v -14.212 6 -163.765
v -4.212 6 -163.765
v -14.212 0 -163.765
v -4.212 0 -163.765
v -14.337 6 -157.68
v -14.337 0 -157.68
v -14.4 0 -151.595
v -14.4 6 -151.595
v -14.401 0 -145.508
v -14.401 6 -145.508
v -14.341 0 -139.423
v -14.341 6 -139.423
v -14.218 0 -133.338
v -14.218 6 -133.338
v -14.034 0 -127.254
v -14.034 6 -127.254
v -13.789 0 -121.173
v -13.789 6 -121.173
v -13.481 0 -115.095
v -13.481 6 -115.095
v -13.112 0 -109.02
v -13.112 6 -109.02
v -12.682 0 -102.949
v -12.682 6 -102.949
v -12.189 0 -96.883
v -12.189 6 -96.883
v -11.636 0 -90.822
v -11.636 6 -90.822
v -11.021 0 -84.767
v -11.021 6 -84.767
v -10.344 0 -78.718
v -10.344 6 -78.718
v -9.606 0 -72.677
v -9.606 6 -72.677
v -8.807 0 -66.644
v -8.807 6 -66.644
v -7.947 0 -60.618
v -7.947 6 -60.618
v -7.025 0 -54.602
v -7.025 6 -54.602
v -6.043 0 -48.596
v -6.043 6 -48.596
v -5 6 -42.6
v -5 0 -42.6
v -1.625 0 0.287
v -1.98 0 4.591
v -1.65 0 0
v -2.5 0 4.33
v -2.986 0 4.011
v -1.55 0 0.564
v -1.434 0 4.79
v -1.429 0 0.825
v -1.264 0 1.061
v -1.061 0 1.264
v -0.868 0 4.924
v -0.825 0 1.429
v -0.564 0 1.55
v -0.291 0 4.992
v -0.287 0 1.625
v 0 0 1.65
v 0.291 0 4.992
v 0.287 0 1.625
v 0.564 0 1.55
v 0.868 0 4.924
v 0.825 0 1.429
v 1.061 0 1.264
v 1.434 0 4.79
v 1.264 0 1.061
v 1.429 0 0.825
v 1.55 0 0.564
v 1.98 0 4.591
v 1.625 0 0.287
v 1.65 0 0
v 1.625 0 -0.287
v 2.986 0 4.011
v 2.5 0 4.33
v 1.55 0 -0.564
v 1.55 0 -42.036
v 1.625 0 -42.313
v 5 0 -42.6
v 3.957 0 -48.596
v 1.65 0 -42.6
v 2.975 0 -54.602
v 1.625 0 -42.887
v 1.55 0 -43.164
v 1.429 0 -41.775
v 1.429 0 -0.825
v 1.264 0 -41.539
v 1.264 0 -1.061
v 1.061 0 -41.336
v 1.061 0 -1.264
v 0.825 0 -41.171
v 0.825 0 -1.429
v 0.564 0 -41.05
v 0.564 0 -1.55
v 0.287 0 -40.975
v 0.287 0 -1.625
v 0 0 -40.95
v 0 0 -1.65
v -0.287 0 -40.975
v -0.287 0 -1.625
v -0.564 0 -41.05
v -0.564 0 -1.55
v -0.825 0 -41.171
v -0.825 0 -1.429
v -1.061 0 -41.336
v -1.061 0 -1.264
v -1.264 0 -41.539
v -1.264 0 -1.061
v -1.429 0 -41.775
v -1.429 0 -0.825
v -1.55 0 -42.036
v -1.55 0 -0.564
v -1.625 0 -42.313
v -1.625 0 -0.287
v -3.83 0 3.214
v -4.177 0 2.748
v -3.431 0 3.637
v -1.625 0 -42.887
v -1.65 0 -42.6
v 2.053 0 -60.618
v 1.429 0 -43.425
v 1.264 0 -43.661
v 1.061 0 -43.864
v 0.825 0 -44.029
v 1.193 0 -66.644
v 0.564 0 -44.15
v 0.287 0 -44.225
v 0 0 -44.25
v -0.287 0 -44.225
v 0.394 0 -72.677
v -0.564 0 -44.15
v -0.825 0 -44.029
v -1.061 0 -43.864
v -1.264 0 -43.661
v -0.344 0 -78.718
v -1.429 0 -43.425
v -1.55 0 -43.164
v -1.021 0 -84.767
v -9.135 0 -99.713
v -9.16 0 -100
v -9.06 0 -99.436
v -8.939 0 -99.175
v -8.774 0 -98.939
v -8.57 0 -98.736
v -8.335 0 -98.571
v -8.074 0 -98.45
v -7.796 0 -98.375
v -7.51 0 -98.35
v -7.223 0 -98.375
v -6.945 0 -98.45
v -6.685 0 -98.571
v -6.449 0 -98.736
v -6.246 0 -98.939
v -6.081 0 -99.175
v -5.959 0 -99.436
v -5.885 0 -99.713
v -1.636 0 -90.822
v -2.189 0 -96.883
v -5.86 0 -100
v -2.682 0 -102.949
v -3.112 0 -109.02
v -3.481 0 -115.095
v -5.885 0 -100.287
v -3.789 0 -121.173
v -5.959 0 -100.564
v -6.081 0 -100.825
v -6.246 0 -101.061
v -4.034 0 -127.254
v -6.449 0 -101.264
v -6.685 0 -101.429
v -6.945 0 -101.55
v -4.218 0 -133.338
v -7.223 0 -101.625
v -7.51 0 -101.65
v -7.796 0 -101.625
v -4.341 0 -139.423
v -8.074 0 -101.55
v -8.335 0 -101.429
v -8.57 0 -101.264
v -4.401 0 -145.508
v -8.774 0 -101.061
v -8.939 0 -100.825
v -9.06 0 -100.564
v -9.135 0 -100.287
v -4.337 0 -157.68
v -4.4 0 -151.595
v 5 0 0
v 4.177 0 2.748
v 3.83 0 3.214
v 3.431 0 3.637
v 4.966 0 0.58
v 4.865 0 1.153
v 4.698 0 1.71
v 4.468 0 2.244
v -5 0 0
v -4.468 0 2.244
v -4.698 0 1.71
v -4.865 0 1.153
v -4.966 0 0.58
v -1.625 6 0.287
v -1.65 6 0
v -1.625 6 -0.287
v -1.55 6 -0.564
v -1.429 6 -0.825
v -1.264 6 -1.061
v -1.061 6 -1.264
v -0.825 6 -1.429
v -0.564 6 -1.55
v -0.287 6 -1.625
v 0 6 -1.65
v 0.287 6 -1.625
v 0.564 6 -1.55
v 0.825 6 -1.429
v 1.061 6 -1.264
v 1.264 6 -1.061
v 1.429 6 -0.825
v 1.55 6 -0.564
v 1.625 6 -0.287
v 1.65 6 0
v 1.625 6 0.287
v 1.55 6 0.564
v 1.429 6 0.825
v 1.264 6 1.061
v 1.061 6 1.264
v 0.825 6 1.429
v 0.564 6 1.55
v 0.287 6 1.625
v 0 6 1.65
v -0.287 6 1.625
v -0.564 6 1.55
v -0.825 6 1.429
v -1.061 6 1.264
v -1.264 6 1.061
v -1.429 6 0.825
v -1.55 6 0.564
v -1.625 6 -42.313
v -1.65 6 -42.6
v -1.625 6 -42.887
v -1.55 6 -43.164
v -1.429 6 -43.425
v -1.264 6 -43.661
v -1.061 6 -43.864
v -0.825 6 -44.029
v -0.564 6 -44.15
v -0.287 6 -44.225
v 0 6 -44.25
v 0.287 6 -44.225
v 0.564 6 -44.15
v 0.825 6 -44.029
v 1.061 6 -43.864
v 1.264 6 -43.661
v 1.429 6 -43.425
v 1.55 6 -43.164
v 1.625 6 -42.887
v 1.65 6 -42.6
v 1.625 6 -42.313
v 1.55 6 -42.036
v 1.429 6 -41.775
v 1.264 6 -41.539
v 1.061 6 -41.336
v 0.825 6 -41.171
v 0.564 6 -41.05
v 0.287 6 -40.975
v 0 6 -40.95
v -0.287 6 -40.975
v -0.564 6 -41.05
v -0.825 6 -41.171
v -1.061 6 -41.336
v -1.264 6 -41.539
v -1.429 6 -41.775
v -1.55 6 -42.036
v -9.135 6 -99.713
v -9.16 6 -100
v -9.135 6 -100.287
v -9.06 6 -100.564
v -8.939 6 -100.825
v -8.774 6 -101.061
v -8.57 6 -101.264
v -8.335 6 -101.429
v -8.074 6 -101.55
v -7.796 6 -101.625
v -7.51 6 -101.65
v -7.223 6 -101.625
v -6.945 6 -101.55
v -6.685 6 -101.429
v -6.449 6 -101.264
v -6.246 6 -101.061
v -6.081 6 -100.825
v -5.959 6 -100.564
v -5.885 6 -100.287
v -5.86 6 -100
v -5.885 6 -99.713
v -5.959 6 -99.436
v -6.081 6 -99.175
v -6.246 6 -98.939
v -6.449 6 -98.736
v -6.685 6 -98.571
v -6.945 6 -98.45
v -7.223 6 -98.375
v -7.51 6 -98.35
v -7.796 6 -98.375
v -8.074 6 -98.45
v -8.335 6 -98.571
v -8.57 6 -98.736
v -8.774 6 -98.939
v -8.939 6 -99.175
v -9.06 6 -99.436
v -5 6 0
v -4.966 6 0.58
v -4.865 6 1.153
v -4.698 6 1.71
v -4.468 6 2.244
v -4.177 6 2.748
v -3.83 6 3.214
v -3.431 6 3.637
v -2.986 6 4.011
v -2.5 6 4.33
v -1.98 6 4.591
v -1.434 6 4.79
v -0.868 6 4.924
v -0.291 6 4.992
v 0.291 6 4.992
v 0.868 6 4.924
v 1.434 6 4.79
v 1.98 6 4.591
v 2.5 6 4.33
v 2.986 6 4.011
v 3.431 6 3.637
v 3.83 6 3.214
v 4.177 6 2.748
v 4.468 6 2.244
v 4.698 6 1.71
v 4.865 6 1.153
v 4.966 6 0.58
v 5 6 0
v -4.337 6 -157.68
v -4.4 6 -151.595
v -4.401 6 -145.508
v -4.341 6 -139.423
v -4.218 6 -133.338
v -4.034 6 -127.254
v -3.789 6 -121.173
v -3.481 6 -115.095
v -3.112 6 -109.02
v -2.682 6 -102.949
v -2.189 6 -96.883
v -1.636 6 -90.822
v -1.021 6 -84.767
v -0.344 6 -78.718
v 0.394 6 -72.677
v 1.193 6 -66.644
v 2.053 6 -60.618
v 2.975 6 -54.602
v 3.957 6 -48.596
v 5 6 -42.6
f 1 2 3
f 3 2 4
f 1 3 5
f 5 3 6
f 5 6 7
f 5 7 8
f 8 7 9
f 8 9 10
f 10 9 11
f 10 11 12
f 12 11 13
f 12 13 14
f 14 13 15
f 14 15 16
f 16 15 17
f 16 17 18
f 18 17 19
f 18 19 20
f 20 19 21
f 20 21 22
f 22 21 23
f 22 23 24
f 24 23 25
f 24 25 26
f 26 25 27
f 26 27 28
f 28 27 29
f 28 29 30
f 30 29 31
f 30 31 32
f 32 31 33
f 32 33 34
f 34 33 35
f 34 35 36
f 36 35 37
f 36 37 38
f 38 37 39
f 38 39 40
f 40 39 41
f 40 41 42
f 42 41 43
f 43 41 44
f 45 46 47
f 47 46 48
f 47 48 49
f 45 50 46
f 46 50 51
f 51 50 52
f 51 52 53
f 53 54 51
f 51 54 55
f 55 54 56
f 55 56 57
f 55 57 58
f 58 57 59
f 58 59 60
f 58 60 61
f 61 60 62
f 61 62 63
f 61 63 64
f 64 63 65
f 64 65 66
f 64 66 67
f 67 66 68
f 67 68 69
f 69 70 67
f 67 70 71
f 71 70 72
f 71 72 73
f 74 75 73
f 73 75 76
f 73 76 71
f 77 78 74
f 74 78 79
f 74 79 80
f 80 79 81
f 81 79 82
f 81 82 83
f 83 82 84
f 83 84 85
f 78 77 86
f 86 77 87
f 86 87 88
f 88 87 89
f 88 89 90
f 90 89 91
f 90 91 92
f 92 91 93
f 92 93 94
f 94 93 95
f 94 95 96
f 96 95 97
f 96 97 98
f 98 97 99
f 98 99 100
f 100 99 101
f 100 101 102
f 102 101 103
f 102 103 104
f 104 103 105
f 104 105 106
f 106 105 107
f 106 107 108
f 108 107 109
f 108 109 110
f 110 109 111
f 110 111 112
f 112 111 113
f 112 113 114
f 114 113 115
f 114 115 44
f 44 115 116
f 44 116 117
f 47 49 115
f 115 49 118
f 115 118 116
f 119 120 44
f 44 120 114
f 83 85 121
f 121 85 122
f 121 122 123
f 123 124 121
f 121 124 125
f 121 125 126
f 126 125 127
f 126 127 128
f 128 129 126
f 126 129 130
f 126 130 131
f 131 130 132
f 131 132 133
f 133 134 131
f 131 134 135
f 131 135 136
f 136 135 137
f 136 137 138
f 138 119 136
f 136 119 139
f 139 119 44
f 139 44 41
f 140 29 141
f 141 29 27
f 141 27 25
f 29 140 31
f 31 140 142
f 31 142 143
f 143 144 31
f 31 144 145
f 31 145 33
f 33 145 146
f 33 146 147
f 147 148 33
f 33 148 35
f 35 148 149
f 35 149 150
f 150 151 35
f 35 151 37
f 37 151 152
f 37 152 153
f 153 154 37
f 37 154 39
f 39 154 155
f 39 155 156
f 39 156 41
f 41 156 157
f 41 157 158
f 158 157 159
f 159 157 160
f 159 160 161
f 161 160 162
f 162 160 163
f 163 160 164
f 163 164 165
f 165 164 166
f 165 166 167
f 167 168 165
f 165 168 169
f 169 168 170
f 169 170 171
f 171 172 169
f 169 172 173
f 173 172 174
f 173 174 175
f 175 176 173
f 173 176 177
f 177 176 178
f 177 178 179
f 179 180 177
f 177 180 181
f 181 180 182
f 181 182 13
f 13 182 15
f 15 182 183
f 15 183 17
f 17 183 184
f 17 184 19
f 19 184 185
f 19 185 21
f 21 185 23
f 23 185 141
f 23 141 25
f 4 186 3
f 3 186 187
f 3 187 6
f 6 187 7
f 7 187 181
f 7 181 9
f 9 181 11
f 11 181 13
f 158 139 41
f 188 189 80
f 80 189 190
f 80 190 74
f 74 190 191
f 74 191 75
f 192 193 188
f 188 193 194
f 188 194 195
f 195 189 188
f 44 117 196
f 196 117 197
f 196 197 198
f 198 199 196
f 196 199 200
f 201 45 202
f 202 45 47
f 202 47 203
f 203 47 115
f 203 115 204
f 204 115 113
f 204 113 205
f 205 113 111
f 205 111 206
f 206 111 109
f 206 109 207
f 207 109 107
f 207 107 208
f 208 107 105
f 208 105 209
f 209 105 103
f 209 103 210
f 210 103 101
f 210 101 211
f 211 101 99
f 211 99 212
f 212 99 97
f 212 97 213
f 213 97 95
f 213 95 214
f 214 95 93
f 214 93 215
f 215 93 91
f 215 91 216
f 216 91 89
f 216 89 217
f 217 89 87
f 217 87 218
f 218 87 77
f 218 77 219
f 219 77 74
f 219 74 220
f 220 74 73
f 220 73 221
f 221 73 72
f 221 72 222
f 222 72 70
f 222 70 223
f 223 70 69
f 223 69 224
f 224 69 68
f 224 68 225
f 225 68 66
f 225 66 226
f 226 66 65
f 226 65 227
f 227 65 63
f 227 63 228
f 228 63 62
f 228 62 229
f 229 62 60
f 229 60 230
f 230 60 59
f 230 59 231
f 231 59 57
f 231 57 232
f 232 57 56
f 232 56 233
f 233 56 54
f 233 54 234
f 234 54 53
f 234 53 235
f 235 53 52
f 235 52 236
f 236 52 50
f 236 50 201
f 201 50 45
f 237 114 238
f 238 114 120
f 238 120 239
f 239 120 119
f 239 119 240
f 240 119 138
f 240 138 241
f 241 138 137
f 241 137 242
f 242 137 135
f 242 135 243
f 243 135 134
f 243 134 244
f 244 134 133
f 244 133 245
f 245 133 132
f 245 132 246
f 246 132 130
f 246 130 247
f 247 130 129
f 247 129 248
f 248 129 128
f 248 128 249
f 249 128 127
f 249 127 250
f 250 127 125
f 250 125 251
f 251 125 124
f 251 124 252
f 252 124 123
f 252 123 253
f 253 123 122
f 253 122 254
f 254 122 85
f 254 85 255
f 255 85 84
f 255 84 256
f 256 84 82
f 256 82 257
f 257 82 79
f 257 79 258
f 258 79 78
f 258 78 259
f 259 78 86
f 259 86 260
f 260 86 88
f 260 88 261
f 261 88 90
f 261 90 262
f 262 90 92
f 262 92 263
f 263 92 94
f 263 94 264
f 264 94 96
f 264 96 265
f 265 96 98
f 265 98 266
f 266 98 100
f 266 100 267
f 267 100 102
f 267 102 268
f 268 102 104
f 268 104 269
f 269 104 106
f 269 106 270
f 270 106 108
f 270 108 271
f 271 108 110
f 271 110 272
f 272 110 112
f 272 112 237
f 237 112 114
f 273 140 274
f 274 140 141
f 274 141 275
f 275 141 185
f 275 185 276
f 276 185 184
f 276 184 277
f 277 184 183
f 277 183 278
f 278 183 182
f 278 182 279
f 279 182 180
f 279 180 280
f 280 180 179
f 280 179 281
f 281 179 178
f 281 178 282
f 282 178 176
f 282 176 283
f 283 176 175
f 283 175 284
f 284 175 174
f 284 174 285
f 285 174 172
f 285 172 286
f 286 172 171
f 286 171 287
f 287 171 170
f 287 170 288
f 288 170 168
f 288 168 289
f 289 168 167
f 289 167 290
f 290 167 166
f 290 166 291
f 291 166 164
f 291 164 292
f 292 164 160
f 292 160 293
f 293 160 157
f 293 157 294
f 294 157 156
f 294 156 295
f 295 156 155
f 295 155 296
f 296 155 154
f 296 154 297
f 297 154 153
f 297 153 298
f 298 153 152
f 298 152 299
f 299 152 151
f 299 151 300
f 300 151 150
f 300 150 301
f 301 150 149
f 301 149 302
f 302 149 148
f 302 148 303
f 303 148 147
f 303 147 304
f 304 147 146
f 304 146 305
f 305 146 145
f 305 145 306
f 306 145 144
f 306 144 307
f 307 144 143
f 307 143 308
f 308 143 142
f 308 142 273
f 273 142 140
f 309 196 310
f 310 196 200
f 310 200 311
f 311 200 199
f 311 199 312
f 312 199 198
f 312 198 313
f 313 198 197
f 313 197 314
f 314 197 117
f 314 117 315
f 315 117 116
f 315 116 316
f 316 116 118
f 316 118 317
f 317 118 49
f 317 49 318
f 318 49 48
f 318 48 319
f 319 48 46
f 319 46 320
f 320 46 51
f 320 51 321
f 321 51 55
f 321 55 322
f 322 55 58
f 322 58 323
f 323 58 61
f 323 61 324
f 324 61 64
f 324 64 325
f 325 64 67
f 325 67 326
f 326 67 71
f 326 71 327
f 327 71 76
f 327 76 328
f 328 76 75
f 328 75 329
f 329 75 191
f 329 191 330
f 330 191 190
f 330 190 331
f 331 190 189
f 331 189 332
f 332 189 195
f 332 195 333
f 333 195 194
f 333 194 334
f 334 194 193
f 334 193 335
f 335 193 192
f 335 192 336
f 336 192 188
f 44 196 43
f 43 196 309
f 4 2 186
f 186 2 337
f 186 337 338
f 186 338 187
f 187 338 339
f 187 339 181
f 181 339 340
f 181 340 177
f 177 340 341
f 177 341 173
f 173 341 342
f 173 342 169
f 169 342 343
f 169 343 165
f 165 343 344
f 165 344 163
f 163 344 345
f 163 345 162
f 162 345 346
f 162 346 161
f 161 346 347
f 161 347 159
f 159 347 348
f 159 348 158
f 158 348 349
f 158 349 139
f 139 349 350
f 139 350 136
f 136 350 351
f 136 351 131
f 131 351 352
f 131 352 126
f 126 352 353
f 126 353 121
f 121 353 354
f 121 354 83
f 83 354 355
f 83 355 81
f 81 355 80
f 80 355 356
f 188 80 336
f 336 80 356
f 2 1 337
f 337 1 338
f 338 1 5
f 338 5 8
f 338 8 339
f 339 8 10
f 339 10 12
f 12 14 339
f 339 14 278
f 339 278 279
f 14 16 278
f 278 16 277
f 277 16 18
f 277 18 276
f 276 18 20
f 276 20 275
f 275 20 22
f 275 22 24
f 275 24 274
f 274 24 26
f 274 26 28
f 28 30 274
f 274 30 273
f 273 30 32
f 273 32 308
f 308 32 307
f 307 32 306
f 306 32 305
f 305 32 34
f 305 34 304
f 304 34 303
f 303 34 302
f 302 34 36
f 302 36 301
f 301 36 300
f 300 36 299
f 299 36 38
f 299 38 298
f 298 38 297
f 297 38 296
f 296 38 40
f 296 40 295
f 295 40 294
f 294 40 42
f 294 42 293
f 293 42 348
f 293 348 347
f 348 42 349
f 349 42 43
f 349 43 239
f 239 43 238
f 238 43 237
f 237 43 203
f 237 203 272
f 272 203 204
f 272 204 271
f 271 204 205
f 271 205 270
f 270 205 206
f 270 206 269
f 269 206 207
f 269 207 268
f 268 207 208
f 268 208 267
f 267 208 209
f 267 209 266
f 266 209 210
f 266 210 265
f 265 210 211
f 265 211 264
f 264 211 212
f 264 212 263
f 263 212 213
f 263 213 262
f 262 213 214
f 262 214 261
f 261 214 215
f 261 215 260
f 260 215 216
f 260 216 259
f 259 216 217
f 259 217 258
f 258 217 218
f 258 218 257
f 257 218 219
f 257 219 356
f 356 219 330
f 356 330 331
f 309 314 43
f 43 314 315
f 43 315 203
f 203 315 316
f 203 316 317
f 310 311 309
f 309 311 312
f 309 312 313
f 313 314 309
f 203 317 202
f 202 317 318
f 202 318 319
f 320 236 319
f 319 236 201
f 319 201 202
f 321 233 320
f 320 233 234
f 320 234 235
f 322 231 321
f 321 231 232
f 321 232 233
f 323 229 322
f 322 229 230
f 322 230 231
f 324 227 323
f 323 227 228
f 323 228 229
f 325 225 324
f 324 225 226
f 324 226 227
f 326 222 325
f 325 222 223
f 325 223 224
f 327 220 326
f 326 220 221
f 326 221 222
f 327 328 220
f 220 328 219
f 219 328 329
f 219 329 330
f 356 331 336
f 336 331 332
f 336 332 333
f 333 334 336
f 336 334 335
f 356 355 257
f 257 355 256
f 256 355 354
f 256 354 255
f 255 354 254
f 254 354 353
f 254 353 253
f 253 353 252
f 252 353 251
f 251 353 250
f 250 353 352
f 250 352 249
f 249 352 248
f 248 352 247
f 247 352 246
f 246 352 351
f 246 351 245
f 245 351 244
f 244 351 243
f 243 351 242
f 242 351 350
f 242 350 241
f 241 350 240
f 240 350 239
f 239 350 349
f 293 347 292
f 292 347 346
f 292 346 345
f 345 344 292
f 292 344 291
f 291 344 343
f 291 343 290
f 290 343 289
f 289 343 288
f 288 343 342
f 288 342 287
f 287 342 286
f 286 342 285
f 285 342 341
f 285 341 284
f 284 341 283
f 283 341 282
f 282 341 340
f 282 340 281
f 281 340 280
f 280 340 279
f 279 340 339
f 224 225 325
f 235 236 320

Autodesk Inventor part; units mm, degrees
ref_plane "YZ Plane" through (0, 0, 0) normal (1, 0, 0) x (0, 1, 0)
ref_plane "XZ Plane" through (0, 0, 0) normal (0, 1, 0) x (-1, 0, 0)
ref_plane "XY Plane" through (0, 0, 0) normal (0, 0, 1) x (1, 0, 0)
sketch "Sketch1" plane through (0, 0, 0) normal (0, 1, 0) x (-1, 0, 0)
  line L0 (0, 0) -> (0, -312.648) construction
  line L1 (5, 0) -> (5, -312.648)
  line L2 (-5, -312.648) -> (-5, 0)
  arc A0 (5, 0) -> (-5, 0) centre (0, 0) ccw
  arc A1 (-5, -312.648) -> (5, -312.648) centre (0, -312.648) ccw
  circle A2 centre (0, 0) radius 1.65
  circle A3 centre (0, -312.648) radius 1.65
  circle A4 centre (0, -42.6) radius 1.65
  circle A5 centre (0, -254.274) radius 1.65
  arc A6 (5, -254.274) -> (5, -42.6) centre (-585.5917, -148.437) ccw
  arc A7 (-5, -254.274) -> (-5, -42.6) centre (-595.5917, -148.437) ccw
  circle A8 centre (7.5096, -100) radius 1.65
  point P0 (0, -156.324)
  dimension "d0" = 3.3
  dimension "d1" = 3.3
  dimension "d2" = 10
  dimension "d3" = 312.648
  dimension "d10" = 3.3
  dimension "d11" = 42.6
  dimension "d12" = 3.3
  dimension "d13" = 254.274
  dimension "d16" = 600
  dimension "d17" = 600
  dimension "d18" = 3.3
  dimension "d19" = 100
extrude "Extrusion1" add sketch "Sketch1" along normal blind 6 contours L1 A1 L2 A7 A0 | A6 L1
sketch "Sketch2" plane through (0, 6, 0) normal (0, 1, 0) x (1, 0, 0)
  line L0 (-42.2974, 163.7654) -> (39.2104, 163.7654)
  line L1 (39.2104, 163.7654) -> (39.2104, -15.6831)
  line L2 (39.2104, -15.6831) -> (-42.2974, -15.6831)
  line L3 (-42.2974, -15.6831) -> (-42.2974, 163.7654)
  line L4 (-108.6868, 337.298) -> (118.0888, 337.298)
  line L5 (118.0888, 337.298) -> (118.0888, -100.4775)
  line L6 (118.0888, -100.4775) -> (-108.6868, -100.4775)
  line L7 (-108.6868, -100.4775) -> (-108.6868, 337.298)
  point P0 (0, 0)
extrude "Extrusion2" cut sketch "Sketch2" against normal blind 10
properties part number "Part_16_p1"
